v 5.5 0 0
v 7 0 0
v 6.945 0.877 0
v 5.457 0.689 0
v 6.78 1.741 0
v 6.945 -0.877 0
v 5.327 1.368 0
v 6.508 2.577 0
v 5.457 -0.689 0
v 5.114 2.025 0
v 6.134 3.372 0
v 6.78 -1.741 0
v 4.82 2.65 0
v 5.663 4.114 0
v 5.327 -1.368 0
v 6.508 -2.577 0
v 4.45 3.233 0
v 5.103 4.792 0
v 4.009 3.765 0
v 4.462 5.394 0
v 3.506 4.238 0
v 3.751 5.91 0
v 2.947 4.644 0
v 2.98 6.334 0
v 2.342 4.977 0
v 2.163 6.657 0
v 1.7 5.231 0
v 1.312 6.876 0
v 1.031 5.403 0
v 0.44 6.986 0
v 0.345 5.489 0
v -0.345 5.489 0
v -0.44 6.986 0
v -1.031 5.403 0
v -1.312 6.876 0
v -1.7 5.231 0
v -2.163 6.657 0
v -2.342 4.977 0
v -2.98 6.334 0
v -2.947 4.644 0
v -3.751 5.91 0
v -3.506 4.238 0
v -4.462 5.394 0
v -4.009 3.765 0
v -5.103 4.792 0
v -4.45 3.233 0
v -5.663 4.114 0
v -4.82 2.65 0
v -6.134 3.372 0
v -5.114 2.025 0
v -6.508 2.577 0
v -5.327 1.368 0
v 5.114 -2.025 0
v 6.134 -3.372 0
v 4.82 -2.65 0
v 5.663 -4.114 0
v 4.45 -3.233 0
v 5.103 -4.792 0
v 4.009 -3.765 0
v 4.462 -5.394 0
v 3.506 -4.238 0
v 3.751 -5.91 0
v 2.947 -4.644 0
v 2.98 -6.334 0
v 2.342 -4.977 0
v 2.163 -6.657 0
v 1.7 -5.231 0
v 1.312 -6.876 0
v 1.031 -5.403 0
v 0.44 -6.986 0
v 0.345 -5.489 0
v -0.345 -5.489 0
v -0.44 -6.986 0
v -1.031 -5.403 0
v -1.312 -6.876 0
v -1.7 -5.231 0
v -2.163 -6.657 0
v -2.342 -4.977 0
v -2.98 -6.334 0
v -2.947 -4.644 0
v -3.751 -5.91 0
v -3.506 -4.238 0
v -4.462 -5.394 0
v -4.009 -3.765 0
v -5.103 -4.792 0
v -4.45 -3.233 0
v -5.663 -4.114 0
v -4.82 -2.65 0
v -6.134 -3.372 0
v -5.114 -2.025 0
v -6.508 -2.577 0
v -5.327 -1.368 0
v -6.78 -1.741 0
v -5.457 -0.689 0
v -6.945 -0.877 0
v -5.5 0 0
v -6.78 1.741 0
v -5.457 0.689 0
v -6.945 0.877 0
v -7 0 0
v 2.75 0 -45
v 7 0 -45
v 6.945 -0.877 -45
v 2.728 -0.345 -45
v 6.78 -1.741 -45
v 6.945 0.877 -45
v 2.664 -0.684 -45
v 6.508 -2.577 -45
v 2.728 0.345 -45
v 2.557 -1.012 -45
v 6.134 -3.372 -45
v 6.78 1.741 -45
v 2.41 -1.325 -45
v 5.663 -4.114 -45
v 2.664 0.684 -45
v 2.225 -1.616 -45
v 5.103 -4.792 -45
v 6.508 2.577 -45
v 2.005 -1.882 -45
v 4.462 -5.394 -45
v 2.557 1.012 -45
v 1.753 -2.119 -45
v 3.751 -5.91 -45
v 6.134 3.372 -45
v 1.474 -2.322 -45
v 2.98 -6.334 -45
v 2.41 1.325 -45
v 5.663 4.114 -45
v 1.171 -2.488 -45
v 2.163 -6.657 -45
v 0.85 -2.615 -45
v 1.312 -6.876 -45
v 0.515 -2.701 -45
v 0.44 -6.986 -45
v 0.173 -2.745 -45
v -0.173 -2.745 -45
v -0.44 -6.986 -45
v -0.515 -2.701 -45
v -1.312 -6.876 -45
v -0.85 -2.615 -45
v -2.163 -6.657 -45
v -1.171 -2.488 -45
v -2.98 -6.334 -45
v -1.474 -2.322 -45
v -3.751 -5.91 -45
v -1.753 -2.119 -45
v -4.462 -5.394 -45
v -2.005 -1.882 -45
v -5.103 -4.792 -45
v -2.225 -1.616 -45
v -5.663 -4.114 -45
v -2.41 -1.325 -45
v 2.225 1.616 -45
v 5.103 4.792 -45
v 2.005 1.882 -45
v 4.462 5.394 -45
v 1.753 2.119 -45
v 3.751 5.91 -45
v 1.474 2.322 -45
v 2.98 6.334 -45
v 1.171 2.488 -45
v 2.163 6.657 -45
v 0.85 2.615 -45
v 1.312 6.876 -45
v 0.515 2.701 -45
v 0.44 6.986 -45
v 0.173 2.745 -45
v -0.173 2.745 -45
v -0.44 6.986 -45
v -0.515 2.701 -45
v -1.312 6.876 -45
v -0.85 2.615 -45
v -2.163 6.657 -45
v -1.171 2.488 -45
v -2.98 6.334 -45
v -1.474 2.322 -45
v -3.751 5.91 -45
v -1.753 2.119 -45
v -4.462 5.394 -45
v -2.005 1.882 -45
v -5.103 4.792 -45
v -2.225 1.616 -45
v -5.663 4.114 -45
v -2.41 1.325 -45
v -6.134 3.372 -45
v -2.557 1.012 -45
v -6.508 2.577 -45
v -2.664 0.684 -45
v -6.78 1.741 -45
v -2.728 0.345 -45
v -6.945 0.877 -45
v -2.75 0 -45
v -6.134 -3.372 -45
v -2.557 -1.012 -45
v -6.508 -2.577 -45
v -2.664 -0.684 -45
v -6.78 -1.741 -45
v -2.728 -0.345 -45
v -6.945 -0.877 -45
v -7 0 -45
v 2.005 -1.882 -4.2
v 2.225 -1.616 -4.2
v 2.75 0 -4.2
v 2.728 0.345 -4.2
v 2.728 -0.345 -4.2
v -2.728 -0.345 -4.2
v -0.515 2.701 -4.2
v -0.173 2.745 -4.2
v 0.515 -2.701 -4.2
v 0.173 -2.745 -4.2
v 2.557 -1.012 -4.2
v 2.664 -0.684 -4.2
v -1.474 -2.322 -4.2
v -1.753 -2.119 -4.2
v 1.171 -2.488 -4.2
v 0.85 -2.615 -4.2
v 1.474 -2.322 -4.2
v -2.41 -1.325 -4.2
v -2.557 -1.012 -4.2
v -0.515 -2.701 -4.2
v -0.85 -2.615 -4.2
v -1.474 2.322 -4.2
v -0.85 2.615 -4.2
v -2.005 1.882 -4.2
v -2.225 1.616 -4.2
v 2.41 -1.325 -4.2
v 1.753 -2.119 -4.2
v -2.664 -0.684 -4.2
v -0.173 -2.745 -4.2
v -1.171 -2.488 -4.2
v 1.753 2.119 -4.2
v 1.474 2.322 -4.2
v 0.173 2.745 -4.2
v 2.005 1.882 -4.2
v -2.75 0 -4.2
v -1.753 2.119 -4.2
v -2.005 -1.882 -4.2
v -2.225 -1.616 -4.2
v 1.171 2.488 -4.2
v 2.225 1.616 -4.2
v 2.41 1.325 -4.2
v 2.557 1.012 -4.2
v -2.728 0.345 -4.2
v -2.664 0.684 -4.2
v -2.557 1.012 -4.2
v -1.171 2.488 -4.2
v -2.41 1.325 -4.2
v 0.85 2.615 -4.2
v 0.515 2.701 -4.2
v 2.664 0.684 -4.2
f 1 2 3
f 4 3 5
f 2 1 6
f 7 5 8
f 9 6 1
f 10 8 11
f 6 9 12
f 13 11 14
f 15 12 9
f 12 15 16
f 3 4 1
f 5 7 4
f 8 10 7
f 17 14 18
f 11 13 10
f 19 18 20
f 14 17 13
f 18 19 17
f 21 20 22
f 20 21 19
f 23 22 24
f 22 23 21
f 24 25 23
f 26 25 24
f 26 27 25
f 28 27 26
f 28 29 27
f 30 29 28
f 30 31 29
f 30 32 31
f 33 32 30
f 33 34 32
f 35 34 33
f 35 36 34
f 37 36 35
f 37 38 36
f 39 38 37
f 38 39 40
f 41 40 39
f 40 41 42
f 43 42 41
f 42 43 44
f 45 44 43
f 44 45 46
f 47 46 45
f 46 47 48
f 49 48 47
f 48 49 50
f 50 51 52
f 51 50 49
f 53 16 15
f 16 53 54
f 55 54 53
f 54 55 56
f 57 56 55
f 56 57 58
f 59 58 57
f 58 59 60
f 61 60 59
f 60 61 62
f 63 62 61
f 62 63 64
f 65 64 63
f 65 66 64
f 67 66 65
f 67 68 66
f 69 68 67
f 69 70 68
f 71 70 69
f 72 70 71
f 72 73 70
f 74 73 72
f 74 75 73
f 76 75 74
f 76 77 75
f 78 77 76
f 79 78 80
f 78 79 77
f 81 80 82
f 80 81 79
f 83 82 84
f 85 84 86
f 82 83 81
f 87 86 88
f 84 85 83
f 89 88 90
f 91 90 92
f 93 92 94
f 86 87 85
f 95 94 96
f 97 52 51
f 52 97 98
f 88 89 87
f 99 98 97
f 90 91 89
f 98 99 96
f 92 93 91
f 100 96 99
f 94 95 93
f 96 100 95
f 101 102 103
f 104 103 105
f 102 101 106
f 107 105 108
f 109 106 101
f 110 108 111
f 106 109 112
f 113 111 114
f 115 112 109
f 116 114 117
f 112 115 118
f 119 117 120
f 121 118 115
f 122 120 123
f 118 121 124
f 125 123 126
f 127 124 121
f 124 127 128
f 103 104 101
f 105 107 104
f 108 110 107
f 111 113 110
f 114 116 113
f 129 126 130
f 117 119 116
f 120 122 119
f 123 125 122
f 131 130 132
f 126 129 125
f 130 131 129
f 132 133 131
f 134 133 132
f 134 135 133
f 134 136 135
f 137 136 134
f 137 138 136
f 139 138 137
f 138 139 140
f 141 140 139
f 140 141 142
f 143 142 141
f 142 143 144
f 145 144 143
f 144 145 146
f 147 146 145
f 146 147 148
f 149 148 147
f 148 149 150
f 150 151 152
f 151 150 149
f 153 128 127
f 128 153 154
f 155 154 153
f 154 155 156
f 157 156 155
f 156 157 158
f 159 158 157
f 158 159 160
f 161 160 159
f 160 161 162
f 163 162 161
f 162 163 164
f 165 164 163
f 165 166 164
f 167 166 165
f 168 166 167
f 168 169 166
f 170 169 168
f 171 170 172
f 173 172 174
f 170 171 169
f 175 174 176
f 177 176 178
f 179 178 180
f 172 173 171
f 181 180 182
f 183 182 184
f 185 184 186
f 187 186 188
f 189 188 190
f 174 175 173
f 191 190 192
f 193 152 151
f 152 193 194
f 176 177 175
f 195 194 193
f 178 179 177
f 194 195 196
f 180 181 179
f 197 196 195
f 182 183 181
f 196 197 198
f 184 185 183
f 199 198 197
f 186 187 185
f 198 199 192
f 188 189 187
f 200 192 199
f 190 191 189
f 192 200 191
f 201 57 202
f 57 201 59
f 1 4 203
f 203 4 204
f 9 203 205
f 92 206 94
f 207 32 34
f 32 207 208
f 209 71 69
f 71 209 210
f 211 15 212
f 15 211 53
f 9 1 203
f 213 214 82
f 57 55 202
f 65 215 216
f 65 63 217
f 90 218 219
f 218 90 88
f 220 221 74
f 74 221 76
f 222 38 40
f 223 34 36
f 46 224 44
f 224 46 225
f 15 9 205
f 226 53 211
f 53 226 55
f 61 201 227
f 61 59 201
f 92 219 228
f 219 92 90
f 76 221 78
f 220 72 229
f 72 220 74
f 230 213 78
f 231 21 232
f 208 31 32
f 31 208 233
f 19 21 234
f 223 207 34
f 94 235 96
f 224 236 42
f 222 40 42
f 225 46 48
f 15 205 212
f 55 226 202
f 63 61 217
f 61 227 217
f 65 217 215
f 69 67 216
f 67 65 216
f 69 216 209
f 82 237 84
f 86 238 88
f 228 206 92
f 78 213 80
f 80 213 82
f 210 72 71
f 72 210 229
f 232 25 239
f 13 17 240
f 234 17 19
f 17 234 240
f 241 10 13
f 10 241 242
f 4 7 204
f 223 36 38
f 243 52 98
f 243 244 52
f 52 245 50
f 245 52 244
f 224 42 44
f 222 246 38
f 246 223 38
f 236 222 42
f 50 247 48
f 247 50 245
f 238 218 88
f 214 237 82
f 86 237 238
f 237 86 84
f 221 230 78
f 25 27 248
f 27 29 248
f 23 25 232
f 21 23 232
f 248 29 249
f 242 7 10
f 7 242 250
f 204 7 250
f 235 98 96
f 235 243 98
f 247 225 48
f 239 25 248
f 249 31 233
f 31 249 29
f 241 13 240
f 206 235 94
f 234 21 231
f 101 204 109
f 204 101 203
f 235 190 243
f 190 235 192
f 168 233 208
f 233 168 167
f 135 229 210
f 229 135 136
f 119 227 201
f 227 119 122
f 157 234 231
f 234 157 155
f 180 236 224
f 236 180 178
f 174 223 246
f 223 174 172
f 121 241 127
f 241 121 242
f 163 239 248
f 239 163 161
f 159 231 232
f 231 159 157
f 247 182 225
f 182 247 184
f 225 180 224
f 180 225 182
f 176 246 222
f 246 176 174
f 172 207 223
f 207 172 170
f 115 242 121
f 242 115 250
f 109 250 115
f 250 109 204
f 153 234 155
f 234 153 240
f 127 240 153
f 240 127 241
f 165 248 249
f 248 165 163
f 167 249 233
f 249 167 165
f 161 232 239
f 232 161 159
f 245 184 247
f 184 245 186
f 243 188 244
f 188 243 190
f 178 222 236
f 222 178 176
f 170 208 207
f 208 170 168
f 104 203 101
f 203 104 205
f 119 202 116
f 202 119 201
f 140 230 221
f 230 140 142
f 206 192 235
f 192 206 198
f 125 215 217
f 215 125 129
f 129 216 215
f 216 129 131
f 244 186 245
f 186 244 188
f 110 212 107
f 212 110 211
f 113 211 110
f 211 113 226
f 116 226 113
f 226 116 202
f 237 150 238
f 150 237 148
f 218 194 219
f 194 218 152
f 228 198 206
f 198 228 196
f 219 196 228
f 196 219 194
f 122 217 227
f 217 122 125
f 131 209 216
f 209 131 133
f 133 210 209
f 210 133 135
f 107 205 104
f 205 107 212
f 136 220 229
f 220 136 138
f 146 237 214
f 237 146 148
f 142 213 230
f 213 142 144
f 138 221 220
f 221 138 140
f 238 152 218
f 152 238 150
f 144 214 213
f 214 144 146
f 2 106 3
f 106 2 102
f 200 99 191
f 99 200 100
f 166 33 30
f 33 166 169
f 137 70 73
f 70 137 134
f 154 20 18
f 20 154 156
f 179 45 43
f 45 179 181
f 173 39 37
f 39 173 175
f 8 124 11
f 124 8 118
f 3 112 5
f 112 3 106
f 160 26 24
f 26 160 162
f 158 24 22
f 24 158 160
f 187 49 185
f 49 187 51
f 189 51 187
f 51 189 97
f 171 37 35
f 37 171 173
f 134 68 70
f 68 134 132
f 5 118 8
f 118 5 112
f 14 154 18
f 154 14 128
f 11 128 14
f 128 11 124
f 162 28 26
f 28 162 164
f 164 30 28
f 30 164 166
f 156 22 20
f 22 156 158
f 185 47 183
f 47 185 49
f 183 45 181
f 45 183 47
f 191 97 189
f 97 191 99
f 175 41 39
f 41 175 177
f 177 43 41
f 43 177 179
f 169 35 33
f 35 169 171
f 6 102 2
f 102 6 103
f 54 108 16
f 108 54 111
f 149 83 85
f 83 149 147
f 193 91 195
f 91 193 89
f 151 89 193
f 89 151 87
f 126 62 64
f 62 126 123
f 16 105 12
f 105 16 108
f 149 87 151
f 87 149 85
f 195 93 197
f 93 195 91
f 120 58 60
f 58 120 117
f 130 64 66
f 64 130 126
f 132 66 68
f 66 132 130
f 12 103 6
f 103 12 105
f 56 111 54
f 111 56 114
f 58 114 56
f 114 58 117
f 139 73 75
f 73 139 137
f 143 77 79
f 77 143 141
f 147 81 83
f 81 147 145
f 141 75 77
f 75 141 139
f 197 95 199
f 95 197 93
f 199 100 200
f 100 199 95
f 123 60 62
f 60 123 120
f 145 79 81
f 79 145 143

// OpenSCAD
$fn = 50;


difference() {
	union() {
		translate(v = [0, 0, -45.0000000000]) {
			cylinder(h = 45, r = 7.0000000000);
		}
	}
	union() {
		translate(v = [0, 0, 0]) {
			rotate(a = [0, 0, 0]) {
				difference() {
					union() {
						#translate(v = [0, 0, -45.0000000000]) {
							cylinder(h = 45, r = 2.2500000000);
						}
						#translate(v = [0, 0, -4.2000000000]) {
							cylinder(h = 4.2000000000, r = 7.0000000000, r1 = 2.7500000000, r2 = 5.5000000000);
						}
						#translate(v = [0, 0, -45.0000000000]) {
							cylinder(h = 45, r = 2.7500000000);
						}
						#translate(v = [0, 0, -45.0000000000]) {
							cylinder(h = 45, r = 2.2500000000);
						}
					}
					union();
				}
			}
		}
	}
}
